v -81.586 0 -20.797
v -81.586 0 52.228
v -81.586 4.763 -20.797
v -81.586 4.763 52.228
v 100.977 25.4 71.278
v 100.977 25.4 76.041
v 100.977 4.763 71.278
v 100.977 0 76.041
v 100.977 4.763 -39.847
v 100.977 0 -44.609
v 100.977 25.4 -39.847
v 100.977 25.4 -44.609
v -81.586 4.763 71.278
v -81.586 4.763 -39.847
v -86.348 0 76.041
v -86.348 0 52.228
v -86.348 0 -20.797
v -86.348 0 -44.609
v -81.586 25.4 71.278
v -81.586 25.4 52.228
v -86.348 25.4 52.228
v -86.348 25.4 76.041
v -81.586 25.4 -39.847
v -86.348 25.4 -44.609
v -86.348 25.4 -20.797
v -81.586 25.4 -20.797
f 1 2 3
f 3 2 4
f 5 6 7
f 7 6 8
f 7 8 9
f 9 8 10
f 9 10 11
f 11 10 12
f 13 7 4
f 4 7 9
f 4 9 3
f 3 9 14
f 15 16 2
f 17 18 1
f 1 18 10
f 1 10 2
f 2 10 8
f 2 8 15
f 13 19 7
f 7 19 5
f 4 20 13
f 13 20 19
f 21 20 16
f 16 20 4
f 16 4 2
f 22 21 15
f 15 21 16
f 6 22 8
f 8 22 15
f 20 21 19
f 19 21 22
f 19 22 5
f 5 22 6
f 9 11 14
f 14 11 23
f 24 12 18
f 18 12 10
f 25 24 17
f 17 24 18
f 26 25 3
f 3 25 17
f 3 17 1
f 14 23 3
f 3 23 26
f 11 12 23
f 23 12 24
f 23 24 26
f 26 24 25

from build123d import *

# Parameters (mm, degrees)
SKETCH1_W           = 182.5625
SKETCH1_H           = 111.125
BOSS_EXTRUDE1_DEPTH = 4.7625
BOSS_EXTRUDE2_DEPTH = 25.4


with BuildPart() as part:
    # Sketch1 → Boss-Extrude1 (new body)
    with BuildSketch(Plane(origin=(0, 0, 0), x_dir=(1, 0, 0), z_dir=(0, 1, 0))):
        with Locations((9.695676813, -15.715633096)):
            Rectangle(SKETCH1_W, SKETCH1_H)
    extrude(amount=BOSS_EXTRUDE1_DEPTH)

    # Sketch3 → Boss-Extrude2 (add)
    with BuildSketch(Plane.XZ):
        Polygon((-86.348073187, -39.846866904), (-86.348073187, -20.796866904), (-81.585573187, -20.796866904), (-81.585573187, -39.846866904), (100.976926813, -39.846866904), (100.976926813, -44.609366904), (-86.348073187, -44.609366904), align=None)
        Polygon((-86.348073187, 71.278133096), (-86.348073187, 52.228133096), (-81.585573187, 52.228133096), (-81.585573187, 71.278133096), (100.976926813, 71.278133096), (100.976926813, 76.040633096), (-81.585573187, 76.040633096), (-86.348073187, 76.040633096), align=None)
    extrude(amount=-BOSS_EXTRUDE2_DEPTH)


solid = part.part
